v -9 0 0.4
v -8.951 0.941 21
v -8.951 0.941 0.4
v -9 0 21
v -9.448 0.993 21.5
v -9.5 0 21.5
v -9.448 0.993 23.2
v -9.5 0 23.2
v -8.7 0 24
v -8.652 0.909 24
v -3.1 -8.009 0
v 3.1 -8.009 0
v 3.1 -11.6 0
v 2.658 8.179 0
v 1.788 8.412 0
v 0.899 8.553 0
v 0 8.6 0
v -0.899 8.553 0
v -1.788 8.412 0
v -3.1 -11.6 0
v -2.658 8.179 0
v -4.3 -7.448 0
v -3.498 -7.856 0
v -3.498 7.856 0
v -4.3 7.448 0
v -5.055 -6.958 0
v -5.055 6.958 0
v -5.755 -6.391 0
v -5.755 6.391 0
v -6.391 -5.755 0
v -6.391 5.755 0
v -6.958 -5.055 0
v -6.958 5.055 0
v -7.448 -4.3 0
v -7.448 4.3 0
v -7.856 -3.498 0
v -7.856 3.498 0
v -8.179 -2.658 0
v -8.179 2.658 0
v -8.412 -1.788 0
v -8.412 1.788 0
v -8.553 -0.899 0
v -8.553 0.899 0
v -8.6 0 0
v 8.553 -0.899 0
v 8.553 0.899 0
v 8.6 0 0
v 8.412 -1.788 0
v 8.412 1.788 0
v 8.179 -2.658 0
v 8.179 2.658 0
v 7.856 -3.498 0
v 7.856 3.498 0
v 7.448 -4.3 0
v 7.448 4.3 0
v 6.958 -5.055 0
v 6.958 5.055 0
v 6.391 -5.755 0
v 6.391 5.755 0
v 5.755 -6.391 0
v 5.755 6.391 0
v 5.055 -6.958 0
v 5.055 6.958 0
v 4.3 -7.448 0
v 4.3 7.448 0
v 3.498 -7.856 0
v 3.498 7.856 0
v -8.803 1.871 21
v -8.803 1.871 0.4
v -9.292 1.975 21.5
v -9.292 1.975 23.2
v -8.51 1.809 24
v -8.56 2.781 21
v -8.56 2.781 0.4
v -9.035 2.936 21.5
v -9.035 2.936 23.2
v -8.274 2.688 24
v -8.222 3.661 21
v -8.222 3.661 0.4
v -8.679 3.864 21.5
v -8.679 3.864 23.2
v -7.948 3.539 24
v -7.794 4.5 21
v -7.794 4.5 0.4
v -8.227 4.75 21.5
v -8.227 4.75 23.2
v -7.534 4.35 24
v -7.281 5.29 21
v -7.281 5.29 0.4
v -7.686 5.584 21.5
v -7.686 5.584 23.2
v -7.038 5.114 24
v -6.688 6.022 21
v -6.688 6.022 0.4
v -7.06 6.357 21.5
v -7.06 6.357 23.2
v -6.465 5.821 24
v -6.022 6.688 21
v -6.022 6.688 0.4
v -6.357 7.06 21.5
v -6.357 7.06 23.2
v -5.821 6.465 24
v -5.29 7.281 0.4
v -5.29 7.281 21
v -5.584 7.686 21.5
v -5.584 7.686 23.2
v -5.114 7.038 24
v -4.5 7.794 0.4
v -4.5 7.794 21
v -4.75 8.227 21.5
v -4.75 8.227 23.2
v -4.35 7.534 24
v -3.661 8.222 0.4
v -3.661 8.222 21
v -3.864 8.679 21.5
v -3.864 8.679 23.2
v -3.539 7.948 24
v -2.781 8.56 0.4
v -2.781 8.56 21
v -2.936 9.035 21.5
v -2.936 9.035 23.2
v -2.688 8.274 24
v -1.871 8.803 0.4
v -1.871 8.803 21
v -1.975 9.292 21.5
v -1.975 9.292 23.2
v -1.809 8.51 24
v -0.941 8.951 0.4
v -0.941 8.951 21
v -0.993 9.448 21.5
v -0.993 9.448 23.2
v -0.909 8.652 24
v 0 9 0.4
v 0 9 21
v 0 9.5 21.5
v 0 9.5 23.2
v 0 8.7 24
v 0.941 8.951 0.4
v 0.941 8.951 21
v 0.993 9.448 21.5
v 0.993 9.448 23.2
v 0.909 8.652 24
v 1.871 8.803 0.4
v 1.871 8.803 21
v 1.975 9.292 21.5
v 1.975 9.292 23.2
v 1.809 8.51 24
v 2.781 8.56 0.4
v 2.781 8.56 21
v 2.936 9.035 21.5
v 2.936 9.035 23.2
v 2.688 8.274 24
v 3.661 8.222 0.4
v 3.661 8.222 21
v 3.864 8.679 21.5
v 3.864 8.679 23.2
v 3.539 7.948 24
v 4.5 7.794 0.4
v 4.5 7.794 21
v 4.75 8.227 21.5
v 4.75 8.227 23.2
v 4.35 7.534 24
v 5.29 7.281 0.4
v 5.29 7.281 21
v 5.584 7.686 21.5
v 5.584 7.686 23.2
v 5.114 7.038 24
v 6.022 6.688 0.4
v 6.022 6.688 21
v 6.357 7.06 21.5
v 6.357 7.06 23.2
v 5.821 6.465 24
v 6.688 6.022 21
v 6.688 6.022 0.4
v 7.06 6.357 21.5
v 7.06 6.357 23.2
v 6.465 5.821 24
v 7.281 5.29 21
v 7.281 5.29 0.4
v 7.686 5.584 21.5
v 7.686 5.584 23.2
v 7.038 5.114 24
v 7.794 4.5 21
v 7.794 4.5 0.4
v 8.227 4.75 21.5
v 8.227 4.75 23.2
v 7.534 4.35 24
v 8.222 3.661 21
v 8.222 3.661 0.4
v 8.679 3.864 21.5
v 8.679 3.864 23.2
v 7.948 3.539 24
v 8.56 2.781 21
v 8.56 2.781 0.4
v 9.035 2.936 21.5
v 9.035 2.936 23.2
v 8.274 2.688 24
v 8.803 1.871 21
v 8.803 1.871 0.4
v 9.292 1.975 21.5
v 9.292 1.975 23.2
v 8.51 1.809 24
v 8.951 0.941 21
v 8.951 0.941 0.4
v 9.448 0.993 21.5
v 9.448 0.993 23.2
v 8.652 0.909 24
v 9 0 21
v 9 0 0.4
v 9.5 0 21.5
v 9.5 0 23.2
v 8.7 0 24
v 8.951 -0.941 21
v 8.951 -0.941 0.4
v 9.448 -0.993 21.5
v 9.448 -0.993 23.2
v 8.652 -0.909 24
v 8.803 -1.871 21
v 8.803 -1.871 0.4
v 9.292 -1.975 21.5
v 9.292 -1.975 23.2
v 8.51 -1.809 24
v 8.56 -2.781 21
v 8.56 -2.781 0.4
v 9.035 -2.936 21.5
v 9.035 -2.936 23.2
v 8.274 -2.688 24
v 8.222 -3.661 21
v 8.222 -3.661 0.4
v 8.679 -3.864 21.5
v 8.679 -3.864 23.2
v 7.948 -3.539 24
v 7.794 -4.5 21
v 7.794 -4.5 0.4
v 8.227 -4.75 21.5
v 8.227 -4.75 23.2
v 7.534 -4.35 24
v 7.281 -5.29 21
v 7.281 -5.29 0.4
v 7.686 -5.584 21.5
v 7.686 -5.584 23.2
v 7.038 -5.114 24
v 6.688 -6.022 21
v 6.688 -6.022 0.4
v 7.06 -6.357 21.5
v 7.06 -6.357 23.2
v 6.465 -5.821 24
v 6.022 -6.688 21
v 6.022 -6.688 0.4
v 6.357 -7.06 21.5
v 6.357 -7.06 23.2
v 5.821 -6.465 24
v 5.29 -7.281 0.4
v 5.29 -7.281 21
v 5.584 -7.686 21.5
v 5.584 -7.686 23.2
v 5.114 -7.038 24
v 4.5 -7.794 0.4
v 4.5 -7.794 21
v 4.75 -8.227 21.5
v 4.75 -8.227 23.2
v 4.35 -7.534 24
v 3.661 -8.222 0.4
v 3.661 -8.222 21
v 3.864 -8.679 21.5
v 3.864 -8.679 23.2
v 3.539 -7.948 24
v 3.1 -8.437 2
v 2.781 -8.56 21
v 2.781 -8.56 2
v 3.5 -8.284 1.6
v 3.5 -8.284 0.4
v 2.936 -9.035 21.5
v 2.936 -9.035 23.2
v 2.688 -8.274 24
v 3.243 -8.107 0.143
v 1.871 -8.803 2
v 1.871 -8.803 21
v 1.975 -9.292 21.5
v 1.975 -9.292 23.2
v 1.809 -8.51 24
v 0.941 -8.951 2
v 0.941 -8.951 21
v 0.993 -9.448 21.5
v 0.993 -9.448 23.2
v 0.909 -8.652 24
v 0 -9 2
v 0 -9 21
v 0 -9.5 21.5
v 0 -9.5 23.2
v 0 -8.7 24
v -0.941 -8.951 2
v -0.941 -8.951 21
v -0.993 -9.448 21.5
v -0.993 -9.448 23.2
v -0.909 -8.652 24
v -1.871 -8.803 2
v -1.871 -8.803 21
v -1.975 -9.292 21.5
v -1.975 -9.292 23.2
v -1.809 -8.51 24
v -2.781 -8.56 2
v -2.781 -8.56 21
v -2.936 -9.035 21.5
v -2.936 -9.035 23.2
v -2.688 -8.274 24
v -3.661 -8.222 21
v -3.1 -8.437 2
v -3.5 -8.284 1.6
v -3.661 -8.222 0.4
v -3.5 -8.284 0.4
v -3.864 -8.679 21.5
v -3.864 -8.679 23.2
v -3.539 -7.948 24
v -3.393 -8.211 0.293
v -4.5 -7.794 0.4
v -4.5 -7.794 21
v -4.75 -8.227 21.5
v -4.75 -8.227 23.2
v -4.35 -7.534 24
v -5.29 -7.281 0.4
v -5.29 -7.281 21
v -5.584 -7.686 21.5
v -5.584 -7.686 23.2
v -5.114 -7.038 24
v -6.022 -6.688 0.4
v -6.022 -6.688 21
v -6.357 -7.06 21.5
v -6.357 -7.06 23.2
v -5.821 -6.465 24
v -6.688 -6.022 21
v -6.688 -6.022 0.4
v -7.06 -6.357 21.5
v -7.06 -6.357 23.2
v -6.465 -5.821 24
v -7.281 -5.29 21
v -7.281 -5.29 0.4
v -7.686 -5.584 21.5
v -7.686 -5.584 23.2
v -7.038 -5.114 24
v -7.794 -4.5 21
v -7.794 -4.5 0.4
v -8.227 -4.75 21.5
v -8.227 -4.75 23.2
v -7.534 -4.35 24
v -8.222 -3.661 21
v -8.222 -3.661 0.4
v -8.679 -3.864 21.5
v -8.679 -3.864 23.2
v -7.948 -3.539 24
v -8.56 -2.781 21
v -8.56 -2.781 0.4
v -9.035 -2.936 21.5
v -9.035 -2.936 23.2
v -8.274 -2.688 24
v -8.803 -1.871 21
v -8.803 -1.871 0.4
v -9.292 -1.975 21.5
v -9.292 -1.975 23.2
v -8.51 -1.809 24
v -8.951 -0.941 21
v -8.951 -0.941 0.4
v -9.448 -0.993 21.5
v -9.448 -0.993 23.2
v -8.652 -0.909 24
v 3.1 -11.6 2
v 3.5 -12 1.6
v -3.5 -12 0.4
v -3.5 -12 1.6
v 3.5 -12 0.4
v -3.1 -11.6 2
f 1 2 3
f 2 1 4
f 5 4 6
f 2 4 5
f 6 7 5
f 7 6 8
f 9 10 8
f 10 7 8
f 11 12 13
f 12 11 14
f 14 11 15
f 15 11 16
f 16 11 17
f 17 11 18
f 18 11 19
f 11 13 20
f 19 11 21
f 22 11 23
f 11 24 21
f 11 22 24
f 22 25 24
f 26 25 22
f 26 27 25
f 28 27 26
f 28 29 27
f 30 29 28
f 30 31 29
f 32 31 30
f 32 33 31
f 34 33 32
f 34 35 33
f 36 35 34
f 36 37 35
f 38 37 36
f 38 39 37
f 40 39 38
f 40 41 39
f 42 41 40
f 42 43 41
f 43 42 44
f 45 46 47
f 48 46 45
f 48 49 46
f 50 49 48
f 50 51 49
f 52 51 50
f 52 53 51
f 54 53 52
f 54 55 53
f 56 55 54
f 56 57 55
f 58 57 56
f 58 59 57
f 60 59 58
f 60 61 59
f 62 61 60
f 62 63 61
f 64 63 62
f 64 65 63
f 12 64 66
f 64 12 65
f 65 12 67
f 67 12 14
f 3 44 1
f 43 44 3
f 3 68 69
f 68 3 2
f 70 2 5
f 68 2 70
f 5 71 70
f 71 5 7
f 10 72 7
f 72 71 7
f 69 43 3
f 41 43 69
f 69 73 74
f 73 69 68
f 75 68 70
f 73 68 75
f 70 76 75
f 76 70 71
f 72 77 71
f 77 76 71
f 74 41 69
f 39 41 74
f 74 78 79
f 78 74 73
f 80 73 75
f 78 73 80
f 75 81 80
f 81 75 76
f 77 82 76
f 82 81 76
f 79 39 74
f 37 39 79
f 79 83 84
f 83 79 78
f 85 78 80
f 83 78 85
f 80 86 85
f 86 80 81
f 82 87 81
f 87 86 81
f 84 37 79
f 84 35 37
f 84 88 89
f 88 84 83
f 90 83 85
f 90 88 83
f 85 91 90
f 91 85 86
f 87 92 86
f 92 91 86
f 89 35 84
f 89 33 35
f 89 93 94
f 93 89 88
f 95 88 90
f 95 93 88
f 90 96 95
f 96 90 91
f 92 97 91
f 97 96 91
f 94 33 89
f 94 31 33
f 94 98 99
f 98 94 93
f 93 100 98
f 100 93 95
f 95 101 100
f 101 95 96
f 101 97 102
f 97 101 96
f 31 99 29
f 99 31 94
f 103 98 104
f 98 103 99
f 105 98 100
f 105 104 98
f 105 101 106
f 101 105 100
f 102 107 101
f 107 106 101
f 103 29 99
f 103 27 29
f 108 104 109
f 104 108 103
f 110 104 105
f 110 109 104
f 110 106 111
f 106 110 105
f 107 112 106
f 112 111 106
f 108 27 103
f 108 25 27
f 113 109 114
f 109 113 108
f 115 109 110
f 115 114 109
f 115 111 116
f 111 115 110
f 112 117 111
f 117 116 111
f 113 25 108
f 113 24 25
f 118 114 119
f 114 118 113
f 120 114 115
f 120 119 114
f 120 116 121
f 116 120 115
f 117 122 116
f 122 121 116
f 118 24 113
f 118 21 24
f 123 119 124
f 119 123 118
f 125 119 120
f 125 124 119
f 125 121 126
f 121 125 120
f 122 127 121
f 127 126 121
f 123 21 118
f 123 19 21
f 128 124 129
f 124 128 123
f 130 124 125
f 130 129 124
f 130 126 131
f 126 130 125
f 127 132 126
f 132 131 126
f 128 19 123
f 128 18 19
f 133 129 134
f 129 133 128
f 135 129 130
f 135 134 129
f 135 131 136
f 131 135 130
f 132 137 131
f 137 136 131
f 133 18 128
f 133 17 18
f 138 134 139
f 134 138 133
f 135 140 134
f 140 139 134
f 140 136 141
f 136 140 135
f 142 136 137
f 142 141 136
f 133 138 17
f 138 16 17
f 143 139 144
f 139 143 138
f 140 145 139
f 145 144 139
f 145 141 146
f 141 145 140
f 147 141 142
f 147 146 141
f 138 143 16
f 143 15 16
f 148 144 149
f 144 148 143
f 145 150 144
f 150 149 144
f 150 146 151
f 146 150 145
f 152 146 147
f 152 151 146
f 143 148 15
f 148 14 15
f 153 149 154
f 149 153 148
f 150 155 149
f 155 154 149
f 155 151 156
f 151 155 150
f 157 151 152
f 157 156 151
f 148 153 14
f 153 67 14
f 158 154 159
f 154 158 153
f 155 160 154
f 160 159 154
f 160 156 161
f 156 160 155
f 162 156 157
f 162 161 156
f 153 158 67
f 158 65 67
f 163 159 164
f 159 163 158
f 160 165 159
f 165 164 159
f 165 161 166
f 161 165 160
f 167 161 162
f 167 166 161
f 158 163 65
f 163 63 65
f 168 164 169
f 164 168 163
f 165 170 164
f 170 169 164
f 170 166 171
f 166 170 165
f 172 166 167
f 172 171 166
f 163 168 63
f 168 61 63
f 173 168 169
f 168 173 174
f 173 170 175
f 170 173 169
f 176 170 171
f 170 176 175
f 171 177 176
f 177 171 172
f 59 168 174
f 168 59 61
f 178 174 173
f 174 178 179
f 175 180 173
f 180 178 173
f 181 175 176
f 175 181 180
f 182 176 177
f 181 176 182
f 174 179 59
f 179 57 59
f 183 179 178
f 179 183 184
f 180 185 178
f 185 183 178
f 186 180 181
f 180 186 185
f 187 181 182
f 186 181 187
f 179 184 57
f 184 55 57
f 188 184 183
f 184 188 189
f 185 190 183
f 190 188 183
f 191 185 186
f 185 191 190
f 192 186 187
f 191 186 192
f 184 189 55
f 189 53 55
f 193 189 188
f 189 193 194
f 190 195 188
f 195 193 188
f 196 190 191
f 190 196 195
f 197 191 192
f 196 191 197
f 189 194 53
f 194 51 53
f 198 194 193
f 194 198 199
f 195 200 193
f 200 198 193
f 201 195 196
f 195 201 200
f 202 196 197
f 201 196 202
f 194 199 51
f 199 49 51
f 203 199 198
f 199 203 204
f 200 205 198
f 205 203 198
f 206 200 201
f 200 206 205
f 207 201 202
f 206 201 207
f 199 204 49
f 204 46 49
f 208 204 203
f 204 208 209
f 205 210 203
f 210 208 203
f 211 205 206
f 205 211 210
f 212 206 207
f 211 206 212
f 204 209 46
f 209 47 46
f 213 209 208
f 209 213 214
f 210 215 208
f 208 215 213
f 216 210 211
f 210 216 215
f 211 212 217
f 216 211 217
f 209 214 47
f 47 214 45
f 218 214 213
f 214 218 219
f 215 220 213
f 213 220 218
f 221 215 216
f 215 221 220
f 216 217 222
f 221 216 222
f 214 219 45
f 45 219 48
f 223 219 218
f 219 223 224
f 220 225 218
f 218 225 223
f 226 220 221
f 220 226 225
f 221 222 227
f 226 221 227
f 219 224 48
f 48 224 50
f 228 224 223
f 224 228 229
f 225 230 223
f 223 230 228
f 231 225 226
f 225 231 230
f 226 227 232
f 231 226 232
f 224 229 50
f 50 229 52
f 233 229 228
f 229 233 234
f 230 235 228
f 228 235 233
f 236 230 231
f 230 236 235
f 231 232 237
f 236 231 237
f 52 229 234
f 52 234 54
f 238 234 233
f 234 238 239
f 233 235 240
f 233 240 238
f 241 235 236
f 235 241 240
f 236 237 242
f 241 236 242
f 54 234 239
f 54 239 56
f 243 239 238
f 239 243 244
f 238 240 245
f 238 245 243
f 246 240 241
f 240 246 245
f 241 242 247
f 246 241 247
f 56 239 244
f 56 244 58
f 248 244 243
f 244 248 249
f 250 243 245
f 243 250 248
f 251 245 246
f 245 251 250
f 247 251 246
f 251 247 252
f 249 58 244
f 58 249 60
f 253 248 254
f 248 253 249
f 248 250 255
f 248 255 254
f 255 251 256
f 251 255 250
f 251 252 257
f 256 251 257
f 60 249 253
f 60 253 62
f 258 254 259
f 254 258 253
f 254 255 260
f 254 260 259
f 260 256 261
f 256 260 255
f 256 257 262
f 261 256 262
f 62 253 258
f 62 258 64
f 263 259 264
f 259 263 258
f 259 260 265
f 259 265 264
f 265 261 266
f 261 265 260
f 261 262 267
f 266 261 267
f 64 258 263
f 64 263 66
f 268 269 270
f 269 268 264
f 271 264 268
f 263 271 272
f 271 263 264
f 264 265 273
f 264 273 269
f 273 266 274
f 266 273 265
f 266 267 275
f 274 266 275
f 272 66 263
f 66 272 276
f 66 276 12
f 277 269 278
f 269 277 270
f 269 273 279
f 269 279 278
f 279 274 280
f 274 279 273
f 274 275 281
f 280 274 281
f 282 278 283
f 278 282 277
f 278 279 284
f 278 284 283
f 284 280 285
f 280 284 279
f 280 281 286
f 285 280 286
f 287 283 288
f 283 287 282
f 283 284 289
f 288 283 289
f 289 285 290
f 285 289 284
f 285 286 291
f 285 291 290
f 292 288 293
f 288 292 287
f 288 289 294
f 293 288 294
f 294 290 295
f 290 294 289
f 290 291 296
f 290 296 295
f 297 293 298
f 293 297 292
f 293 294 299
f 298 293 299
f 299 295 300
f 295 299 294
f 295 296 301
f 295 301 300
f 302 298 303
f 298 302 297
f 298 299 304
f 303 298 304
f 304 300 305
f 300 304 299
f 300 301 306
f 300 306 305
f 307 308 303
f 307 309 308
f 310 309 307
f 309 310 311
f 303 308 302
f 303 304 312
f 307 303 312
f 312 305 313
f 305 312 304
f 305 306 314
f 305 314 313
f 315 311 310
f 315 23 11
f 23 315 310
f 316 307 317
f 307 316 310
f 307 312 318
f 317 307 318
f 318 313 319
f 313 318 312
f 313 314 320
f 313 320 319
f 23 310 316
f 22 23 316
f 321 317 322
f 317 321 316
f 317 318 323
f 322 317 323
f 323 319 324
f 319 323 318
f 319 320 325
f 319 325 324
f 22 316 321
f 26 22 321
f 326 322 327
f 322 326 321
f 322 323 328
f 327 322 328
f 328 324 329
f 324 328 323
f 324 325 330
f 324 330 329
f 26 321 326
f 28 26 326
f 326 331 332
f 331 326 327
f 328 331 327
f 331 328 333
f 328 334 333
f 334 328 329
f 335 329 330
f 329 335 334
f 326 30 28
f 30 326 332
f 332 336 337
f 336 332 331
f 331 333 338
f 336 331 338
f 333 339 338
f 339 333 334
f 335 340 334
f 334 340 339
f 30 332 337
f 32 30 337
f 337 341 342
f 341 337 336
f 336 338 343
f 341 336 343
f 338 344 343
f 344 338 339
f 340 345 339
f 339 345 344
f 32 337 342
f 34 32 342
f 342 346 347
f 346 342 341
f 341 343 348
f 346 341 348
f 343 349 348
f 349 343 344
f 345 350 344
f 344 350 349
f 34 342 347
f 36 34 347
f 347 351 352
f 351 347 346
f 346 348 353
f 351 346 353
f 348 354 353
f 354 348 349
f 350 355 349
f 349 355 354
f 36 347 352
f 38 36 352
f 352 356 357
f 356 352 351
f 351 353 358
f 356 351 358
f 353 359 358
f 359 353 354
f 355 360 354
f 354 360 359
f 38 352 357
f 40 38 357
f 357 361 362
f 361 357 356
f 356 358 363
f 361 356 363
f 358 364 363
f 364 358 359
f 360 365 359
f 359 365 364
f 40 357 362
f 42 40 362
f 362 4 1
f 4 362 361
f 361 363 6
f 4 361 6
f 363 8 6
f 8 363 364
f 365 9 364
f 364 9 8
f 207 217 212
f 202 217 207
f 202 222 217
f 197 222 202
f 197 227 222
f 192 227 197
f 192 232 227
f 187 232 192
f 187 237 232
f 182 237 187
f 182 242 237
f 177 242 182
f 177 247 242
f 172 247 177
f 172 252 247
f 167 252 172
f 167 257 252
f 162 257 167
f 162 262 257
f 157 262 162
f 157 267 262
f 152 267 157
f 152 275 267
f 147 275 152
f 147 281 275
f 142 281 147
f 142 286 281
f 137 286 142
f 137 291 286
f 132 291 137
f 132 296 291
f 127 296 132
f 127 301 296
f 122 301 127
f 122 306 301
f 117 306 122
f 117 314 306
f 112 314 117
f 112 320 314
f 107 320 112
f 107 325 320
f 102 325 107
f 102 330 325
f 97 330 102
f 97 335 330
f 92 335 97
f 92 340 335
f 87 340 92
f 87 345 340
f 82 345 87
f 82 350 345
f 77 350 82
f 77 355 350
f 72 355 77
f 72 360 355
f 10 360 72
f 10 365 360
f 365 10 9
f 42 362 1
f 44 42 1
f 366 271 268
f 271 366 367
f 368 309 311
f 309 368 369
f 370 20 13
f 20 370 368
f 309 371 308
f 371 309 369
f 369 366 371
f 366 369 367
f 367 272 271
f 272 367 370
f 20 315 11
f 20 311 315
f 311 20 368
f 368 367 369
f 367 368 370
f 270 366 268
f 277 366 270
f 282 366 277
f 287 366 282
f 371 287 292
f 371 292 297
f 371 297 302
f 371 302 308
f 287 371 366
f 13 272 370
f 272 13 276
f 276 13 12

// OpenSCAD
// file: bucket_lib.scad
// bucket_lib.scad - bucket shapes shared by the hand washing point (design_brief.md 4.9)
// and the mop bucket (4.11); the waste bin (4.7) uses the closed form too.
// Load from a model with:  use <bucket_lib.scad>
// The modules read their shared values from common.scad themselves.
include <common.scad>

function bucket_r(rb, rt, h, z) = rb + (rt - rb) * z / h;   // outer radius at height z

// Body of revolution, base on z = 0, centred on the z axis.
//   d_bottom, d_top   outer diameters at the base and at height h; different values taper
//   wall, floor_t     > 0: open bucket with this wall and floor; 0: solid body
//   lid_h, lip        > 0: closed top with a lid lid_h high, overhanging by lip on a 45 deg underside
//   cb                bottom chamfer; 0 when the bucket stands on another part
//   ct                top chamfer of the lid or of a solid body; an open rim gets none
module bucket(d_bottom, d_top, h, wall = 0, floor_t = 0, lid_h = 0, lip = 0, cb = chamfer_bottom, ct = 0) {
    rb = d_bottom / 2;
    rt = d_top / 2;
    base = concat([[0, 0]], cb > 0 ? [[rb - cb, 0], [rb, cb]] : [[rb, 0]]);
    top = lid_h > 0 ?
              concat([[rt, h]], lip > 0 ? [[rt + lip, h + lip]] : [],
                     ct > 0 ? [[rt + lip, h + lid_h - ct], [rt + lip - ct, h + lid_h]] : [[rt + lip, h + lid_h]],
                     [[0, h + lid_h]]) :
          wall > 0 ?
              [[rt, h], [rt - wall, h], [bucket_r(rb, rt, h, floor_t) - wall, floor_t], [0, floor_t]] :
          ct > 0 ?
              [[rt, h - ct], [rt - ct, h], [0, h]] :
              [[rt, h], [0, h]];
    rotate_extrude() polygon(concat(base, top));
}

// Lug on the outside wall at +x: w wide, reaching out beyond the wall, h high with its top at
// z_top, underside at 45 deg. r_wall is the outer radius at z_top; the lug continues inset
// into the wall (and further down at 45 deg) so it merges with a tapered wall.
module bucket_lug(r_wall, z_top, w = 4, out = min_handled, h = 3, inset = 1)
    rotate([90, 0, 0]) linear_extrude(height = w, center = true)
        polygon([[r_wall - inset, z_top - h - out - inset], [r_wall + out, z_top - h],
                 [r_wall + out, z_top], [r_wall - inset, z_top]]);
// main file
// waste_bin.scad - pedal waste bin (design_brief.md 4.7). One design for the blue and the red
// bin; the filament sets the colour. Body dia 18 x 21, lid 3 with a 0.5 lip, foot pedal
// 7 x 3 x 2 at the front on the table. Part 19 x 21.5 x 24 (lid dia 19, pedal 3 forward).
// Single colour, prints upright.   Export: openscad -o waste_bin.stl waste_bin.scad
include <common.scad>
use <bucket_lib.scad>

diameter    = 18;
body_h      = 21;
lid_h       = 3;
lip         = 0.5;
pedal       = true;
pedal_size  = [7, 3, 2];    // width, reach beyond the body, height (brief values)
pedal_root  = 2;            // reach into the body
top_chamfer = chamfer_top;   // 0.8

module waste_bin() {
    band_colour(1) {
        bucket(diameter, diameter, body_h, lid_h = lid_h, lip = lip, cb = chamfer_bottom, ct = top_chamfer);
        if (pedal)
            translate([0, -diameter / 2 - pedal_size[1] + (pedal_size[1] + pedal_root) / 2, 0])
                chamfered_box([pedal_size[0], pedal_size[1] + pedal_root, pedal_size[2]], cb = chamfer_bottom, ct = 0.4);
    }
}

waste_bin();
